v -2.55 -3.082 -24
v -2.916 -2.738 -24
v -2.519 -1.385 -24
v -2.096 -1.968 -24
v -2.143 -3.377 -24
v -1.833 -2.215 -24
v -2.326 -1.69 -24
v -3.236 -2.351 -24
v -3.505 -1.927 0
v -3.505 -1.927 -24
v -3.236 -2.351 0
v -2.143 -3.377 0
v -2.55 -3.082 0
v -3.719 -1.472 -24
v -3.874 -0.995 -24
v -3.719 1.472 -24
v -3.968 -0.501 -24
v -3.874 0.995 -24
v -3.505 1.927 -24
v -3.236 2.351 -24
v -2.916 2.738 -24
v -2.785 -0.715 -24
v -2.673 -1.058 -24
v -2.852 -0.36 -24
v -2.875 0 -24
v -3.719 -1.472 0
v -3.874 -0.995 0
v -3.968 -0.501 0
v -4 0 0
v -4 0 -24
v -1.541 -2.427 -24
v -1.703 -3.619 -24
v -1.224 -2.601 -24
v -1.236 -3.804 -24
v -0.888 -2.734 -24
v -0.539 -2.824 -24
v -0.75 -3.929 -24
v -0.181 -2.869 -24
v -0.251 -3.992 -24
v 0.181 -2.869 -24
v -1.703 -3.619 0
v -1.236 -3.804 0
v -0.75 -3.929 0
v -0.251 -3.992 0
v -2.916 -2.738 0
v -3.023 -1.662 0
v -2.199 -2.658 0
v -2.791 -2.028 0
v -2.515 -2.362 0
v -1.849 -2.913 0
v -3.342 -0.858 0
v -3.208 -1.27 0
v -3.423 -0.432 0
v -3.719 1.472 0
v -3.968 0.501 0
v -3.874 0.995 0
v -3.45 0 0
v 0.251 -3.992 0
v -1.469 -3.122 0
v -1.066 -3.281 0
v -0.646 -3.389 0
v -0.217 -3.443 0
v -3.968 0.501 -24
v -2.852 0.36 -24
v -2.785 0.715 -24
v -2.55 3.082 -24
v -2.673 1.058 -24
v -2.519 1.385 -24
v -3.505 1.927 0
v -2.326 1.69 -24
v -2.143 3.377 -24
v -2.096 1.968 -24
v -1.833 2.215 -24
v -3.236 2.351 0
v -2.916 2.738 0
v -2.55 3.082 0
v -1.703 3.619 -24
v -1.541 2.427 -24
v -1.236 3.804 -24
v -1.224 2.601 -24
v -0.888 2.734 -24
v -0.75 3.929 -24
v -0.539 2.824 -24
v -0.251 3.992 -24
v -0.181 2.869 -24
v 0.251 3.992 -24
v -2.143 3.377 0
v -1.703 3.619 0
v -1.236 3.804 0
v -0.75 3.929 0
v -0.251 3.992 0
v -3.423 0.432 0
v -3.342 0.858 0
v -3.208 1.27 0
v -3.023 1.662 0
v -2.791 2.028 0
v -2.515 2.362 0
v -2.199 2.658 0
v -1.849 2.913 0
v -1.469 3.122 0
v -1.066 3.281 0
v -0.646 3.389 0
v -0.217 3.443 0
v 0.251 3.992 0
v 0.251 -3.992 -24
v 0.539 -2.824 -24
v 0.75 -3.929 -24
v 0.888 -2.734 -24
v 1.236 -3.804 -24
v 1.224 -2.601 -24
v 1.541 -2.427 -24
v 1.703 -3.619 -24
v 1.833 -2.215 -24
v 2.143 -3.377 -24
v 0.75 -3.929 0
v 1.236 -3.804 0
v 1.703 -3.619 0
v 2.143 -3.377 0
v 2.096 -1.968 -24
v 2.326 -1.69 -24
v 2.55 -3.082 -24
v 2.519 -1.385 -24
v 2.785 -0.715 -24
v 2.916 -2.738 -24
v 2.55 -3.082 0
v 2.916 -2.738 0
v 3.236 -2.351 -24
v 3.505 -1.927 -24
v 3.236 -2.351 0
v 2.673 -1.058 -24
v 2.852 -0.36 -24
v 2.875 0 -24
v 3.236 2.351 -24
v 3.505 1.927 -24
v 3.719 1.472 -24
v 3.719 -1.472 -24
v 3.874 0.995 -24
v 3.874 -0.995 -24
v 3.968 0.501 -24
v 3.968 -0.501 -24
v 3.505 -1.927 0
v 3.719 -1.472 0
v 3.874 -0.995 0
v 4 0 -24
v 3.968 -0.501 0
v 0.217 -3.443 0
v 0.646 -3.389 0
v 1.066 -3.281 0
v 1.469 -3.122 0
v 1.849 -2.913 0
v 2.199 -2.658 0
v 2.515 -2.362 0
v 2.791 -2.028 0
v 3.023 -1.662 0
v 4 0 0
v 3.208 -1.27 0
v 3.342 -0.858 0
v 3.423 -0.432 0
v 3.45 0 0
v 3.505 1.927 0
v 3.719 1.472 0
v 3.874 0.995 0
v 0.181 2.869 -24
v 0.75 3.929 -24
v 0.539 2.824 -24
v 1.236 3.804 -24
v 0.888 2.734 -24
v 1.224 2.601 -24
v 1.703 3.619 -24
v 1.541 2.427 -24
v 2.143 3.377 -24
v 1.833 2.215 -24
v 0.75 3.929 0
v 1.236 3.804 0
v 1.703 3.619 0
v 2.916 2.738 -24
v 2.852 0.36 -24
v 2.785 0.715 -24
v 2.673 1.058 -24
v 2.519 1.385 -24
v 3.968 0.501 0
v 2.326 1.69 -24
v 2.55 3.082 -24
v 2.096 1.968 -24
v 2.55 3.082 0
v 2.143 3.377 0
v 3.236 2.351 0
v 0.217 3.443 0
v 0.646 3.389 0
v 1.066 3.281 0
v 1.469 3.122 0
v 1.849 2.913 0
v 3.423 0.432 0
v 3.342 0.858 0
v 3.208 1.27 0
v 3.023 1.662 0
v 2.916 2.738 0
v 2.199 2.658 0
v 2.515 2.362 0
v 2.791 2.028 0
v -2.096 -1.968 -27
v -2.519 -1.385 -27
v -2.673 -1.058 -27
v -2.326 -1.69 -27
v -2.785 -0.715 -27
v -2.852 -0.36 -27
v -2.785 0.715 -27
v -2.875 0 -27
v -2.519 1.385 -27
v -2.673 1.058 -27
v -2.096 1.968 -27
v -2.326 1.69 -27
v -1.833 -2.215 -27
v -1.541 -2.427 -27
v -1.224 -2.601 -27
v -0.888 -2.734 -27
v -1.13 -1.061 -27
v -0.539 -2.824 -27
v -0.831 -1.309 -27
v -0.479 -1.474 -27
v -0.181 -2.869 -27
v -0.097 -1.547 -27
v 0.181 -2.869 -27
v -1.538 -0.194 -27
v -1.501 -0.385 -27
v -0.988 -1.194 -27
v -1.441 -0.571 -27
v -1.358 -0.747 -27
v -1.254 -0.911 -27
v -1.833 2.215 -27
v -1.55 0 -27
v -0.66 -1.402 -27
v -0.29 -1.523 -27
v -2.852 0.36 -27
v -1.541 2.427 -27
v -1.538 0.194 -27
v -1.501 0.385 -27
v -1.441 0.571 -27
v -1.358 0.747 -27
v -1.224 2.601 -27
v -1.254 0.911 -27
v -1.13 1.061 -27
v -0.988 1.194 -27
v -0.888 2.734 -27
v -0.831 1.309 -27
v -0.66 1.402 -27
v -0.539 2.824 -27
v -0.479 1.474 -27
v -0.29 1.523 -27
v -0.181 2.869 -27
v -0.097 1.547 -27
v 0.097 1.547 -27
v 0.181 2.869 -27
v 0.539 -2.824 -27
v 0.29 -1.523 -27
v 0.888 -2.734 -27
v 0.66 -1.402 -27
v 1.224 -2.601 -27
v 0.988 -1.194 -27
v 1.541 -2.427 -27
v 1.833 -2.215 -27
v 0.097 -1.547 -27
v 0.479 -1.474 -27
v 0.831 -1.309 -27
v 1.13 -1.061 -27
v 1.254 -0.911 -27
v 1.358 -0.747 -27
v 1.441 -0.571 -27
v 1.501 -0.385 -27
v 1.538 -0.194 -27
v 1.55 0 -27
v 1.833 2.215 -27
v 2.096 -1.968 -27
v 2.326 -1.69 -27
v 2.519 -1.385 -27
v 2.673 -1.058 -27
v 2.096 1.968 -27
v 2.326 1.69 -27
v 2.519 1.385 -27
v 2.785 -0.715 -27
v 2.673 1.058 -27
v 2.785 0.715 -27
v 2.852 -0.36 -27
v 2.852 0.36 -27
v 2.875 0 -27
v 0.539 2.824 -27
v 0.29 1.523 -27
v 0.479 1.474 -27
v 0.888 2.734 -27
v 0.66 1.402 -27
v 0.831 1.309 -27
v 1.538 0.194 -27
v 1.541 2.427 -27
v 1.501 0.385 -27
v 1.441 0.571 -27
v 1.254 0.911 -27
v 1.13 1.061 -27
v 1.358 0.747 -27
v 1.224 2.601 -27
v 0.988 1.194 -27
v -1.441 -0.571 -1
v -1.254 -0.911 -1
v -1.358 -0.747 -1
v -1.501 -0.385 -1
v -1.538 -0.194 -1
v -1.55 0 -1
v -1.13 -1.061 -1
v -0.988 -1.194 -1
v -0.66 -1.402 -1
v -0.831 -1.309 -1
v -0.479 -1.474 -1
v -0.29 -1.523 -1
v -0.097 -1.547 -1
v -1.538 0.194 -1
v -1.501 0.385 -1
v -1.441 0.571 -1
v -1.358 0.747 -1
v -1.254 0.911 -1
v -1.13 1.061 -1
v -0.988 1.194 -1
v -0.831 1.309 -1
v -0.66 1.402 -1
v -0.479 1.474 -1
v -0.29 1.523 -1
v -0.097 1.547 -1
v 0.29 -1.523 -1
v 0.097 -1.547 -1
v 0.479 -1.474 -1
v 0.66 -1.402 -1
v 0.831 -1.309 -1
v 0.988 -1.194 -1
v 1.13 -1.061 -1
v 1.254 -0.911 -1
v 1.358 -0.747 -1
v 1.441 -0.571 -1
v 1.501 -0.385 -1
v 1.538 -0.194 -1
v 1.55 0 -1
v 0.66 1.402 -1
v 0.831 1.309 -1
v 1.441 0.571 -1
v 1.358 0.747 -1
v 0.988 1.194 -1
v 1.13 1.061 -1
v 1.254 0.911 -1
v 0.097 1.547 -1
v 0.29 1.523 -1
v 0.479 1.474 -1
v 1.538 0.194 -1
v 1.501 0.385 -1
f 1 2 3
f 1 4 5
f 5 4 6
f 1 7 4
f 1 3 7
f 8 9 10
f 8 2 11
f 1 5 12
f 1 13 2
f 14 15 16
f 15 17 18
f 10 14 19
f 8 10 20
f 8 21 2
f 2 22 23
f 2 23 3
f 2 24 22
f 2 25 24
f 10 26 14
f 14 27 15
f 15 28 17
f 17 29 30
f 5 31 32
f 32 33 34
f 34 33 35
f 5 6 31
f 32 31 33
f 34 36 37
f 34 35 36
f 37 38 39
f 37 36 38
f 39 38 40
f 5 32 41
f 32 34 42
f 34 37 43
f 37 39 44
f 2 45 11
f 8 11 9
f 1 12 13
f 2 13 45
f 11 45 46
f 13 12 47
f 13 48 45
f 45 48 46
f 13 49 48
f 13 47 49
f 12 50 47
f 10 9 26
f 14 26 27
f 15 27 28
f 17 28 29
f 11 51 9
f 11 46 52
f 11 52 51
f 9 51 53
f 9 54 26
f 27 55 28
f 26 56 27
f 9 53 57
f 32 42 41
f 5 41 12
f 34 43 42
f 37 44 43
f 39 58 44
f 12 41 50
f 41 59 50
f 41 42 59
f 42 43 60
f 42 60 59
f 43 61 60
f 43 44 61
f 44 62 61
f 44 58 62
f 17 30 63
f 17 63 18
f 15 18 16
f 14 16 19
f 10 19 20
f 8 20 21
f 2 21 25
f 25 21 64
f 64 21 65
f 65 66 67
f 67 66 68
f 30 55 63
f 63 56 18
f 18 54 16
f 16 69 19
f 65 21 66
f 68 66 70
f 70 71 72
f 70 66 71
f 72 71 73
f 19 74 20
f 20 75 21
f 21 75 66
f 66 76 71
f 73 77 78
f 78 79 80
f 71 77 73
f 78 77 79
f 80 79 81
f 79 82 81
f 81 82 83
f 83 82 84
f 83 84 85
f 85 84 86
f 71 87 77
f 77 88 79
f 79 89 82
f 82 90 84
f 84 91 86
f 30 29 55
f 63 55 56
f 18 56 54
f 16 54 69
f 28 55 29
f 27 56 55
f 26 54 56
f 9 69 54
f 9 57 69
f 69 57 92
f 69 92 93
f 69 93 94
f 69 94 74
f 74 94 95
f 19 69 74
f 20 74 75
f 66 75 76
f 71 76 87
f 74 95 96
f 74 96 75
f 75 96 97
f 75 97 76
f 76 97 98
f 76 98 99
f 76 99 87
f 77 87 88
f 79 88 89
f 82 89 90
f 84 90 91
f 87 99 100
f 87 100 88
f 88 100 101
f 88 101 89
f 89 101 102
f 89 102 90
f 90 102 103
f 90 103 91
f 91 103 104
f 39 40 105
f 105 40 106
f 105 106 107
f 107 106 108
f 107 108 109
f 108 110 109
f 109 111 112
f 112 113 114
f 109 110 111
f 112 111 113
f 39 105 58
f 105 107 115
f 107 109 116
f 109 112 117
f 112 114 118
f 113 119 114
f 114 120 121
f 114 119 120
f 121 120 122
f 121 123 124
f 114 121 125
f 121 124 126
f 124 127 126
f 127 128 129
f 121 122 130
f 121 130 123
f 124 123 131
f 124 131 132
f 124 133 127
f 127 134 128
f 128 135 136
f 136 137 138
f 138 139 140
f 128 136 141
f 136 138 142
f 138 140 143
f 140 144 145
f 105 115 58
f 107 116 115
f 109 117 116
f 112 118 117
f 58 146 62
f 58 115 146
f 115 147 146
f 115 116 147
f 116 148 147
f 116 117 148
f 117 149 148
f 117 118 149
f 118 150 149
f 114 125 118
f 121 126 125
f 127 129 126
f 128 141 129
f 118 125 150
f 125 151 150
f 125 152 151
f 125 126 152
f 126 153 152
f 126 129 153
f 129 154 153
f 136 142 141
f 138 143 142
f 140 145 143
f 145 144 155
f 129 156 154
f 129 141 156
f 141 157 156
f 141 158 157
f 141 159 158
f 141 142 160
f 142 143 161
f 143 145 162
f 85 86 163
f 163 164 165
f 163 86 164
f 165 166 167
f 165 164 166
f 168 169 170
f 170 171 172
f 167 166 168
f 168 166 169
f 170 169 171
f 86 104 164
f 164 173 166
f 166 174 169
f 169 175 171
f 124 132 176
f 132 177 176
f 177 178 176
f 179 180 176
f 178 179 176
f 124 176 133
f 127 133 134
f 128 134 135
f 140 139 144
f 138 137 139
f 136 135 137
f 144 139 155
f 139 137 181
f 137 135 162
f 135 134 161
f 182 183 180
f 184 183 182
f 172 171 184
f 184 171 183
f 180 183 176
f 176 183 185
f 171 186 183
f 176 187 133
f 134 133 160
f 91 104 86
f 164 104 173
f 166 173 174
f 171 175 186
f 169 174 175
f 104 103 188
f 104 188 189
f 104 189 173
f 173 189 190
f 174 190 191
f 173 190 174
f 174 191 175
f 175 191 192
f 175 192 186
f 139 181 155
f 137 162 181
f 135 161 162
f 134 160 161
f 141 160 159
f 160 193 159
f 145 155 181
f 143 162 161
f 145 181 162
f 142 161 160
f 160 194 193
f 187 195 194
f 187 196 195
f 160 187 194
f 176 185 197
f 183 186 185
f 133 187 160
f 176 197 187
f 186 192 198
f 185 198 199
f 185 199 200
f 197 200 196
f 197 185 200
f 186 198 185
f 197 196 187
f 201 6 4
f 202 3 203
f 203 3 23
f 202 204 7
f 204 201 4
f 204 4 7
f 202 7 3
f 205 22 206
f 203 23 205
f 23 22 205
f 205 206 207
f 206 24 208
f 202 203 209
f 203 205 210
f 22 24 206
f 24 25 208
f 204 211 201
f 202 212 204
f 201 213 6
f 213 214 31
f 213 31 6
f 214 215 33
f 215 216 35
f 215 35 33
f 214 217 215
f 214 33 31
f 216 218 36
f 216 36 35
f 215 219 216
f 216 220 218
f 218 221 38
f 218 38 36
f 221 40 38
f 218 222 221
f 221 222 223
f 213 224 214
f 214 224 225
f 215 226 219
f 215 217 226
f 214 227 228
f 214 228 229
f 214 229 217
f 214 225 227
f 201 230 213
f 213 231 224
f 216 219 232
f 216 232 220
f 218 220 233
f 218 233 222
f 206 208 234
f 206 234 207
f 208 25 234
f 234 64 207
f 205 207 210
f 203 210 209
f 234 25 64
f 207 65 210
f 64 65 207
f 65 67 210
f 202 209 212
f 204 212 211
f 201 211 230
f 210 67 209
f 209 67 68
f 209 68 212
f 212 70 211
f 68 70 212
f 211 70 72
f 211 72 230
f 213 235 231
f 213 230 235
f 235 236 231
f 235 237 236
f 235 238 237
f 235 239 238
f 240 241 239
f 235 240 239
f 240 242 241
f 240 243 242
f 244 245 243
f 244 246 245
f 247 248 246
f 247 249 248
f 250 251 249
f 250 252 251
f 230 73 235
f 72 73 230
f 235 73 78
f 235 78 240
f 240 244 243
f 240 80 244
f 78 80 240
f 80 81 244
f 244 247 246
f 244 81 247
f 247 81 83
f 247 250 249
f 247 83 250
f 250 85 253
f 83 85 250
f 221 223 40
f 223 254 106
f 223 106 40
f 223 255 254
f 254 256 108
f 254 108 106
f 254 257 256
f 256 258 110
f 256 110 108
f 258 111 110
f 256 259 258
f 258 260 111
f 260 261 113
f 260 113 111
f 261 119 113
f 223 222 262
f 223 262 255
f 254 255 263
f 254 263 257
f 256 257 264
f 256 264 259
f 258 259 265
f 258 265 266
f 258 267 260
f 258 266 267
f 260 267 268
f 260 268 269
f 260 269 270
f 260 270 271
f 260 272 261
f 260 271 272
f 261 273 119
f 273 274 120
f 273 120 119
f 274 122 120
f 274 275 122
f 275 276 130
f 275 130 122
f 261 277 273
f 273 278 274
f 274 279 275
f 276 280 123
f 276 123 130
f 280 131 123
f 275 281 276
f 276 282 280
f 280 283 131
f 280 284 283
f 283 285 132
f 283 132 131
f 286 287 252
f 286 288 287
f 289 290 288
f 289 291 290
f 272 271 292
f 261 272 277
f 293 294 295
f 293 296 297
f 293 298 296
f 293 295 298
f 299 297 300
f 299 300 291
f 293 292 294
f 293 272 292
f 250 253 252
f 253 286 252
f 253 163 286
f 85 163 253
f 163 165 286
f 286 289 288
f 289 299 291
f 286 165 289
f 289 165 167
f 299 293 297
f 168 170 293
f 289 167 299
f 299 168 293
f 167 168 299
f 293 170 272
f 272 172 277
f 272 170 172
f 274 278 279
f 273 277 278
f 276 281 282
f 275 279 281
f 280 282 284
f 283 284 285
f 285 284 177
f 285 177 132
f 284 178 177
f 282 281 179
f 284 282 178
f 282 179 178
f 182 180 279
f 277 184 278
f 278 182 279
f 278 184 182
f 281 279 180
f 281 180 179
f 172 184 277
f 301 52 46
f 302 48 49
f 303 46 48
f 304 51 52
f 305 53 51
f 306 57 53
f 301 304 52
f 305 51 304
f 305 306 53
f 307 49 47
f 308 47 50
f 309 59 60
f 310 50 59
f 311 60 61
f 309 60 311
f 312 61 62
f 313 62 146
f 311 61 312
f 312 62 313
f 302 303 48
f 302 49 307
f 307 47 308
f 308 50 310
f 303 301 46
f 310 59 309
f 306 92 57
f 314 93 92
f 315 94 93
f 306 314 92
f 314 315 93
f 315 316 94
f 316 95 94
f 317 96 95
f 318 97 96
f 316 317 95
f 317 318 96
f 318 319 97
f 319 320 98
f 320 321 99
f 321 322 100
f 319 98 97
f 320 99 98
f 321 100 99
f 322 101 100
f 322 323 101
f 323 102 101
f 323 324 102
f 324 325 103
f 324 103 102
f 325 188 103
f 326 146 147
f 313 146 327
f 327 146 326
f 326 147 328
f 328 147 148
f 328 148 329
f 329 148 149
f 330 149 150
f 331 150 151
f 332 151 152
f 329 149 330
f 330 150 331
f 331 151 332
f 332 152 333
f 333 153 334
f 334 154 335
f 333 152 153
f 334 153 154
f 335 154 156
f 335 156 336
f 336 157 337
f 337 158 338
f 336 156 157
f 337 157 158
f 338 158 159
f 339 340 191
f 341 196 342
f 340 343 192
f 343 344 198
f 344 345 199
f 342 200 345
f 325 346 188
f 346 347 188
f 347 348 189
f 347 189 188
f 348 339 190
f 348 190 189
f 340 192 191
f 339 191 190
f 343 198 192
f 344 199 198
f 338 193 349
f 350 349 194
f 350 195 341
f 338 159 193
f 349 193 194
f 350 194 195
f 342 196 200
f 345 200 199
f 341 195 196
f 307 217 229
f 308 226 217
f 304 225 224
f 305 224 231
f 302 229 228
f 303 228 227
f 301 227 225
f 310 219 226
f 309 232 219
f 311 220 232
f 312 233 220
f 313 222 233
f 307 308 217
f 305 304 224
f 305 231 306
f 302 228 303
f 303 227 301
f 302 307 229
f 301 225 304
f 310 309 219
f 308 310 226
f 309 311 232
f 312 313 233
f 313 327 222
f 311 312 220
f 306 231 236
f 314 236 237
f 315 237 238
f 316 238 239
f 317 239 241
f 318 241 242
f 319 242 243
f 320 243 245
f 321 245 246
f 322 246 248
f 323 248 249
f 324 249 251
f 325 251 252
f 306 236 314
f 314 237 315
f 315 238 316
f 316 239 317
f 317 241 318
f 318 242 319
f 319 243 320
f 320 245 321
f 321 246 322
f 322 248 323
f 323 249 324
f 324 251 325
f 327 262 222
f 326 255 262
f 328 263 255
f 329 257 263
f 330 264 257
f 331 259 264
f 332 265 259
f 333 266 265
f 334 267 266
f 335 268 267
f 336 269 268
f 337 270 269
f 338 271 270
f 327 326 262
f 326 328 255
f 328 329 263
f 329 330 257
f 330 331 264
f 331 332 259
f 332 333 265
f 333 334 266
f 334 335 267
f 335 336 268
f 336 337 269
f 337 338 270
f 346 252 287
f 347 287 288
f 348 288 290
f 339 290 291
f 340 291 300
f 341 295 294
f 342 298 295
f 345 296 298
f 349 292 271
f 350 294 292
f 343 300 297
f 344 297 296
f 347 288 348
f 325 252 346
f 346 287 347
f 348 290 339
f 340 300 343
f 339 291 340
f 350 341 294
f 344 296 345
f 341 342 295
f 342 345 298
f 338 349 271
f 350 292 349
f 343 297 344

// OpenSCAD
$fn = 50;

difference() {
	union() {
		translate(v = [0, 0, -24.0]) {
			cylinder(h = 24, r = 4.0);
		}
		#translate(v = [0, 0, -27.0]) {
			cylinder(h = 27, r = 2.875);
		}
	}
	union() {
		translate(v = [0, 0, 0]) {
			rotate(a = [0, 0, 0]) {
				difference() {
					union() {
						translate(v = [0, 0, -27.0]) {
							cylinder(h = 27, r = 1.25);
						}
						translate(v = [0, 0, -1.0]) {
							cylinder(h = 1.0, r1 = 1.55, r2 = 3.45);
						}
						translate(v = [0, 0, -27.0]) {
							cylinder(h = 27, r = 1.55);
						}
						translate(v = [0, 0, -27.0]) {
							cylinder(h = 27, r = 1.25);
						}
					}
					union();
				}
			}
		}
	}
}
